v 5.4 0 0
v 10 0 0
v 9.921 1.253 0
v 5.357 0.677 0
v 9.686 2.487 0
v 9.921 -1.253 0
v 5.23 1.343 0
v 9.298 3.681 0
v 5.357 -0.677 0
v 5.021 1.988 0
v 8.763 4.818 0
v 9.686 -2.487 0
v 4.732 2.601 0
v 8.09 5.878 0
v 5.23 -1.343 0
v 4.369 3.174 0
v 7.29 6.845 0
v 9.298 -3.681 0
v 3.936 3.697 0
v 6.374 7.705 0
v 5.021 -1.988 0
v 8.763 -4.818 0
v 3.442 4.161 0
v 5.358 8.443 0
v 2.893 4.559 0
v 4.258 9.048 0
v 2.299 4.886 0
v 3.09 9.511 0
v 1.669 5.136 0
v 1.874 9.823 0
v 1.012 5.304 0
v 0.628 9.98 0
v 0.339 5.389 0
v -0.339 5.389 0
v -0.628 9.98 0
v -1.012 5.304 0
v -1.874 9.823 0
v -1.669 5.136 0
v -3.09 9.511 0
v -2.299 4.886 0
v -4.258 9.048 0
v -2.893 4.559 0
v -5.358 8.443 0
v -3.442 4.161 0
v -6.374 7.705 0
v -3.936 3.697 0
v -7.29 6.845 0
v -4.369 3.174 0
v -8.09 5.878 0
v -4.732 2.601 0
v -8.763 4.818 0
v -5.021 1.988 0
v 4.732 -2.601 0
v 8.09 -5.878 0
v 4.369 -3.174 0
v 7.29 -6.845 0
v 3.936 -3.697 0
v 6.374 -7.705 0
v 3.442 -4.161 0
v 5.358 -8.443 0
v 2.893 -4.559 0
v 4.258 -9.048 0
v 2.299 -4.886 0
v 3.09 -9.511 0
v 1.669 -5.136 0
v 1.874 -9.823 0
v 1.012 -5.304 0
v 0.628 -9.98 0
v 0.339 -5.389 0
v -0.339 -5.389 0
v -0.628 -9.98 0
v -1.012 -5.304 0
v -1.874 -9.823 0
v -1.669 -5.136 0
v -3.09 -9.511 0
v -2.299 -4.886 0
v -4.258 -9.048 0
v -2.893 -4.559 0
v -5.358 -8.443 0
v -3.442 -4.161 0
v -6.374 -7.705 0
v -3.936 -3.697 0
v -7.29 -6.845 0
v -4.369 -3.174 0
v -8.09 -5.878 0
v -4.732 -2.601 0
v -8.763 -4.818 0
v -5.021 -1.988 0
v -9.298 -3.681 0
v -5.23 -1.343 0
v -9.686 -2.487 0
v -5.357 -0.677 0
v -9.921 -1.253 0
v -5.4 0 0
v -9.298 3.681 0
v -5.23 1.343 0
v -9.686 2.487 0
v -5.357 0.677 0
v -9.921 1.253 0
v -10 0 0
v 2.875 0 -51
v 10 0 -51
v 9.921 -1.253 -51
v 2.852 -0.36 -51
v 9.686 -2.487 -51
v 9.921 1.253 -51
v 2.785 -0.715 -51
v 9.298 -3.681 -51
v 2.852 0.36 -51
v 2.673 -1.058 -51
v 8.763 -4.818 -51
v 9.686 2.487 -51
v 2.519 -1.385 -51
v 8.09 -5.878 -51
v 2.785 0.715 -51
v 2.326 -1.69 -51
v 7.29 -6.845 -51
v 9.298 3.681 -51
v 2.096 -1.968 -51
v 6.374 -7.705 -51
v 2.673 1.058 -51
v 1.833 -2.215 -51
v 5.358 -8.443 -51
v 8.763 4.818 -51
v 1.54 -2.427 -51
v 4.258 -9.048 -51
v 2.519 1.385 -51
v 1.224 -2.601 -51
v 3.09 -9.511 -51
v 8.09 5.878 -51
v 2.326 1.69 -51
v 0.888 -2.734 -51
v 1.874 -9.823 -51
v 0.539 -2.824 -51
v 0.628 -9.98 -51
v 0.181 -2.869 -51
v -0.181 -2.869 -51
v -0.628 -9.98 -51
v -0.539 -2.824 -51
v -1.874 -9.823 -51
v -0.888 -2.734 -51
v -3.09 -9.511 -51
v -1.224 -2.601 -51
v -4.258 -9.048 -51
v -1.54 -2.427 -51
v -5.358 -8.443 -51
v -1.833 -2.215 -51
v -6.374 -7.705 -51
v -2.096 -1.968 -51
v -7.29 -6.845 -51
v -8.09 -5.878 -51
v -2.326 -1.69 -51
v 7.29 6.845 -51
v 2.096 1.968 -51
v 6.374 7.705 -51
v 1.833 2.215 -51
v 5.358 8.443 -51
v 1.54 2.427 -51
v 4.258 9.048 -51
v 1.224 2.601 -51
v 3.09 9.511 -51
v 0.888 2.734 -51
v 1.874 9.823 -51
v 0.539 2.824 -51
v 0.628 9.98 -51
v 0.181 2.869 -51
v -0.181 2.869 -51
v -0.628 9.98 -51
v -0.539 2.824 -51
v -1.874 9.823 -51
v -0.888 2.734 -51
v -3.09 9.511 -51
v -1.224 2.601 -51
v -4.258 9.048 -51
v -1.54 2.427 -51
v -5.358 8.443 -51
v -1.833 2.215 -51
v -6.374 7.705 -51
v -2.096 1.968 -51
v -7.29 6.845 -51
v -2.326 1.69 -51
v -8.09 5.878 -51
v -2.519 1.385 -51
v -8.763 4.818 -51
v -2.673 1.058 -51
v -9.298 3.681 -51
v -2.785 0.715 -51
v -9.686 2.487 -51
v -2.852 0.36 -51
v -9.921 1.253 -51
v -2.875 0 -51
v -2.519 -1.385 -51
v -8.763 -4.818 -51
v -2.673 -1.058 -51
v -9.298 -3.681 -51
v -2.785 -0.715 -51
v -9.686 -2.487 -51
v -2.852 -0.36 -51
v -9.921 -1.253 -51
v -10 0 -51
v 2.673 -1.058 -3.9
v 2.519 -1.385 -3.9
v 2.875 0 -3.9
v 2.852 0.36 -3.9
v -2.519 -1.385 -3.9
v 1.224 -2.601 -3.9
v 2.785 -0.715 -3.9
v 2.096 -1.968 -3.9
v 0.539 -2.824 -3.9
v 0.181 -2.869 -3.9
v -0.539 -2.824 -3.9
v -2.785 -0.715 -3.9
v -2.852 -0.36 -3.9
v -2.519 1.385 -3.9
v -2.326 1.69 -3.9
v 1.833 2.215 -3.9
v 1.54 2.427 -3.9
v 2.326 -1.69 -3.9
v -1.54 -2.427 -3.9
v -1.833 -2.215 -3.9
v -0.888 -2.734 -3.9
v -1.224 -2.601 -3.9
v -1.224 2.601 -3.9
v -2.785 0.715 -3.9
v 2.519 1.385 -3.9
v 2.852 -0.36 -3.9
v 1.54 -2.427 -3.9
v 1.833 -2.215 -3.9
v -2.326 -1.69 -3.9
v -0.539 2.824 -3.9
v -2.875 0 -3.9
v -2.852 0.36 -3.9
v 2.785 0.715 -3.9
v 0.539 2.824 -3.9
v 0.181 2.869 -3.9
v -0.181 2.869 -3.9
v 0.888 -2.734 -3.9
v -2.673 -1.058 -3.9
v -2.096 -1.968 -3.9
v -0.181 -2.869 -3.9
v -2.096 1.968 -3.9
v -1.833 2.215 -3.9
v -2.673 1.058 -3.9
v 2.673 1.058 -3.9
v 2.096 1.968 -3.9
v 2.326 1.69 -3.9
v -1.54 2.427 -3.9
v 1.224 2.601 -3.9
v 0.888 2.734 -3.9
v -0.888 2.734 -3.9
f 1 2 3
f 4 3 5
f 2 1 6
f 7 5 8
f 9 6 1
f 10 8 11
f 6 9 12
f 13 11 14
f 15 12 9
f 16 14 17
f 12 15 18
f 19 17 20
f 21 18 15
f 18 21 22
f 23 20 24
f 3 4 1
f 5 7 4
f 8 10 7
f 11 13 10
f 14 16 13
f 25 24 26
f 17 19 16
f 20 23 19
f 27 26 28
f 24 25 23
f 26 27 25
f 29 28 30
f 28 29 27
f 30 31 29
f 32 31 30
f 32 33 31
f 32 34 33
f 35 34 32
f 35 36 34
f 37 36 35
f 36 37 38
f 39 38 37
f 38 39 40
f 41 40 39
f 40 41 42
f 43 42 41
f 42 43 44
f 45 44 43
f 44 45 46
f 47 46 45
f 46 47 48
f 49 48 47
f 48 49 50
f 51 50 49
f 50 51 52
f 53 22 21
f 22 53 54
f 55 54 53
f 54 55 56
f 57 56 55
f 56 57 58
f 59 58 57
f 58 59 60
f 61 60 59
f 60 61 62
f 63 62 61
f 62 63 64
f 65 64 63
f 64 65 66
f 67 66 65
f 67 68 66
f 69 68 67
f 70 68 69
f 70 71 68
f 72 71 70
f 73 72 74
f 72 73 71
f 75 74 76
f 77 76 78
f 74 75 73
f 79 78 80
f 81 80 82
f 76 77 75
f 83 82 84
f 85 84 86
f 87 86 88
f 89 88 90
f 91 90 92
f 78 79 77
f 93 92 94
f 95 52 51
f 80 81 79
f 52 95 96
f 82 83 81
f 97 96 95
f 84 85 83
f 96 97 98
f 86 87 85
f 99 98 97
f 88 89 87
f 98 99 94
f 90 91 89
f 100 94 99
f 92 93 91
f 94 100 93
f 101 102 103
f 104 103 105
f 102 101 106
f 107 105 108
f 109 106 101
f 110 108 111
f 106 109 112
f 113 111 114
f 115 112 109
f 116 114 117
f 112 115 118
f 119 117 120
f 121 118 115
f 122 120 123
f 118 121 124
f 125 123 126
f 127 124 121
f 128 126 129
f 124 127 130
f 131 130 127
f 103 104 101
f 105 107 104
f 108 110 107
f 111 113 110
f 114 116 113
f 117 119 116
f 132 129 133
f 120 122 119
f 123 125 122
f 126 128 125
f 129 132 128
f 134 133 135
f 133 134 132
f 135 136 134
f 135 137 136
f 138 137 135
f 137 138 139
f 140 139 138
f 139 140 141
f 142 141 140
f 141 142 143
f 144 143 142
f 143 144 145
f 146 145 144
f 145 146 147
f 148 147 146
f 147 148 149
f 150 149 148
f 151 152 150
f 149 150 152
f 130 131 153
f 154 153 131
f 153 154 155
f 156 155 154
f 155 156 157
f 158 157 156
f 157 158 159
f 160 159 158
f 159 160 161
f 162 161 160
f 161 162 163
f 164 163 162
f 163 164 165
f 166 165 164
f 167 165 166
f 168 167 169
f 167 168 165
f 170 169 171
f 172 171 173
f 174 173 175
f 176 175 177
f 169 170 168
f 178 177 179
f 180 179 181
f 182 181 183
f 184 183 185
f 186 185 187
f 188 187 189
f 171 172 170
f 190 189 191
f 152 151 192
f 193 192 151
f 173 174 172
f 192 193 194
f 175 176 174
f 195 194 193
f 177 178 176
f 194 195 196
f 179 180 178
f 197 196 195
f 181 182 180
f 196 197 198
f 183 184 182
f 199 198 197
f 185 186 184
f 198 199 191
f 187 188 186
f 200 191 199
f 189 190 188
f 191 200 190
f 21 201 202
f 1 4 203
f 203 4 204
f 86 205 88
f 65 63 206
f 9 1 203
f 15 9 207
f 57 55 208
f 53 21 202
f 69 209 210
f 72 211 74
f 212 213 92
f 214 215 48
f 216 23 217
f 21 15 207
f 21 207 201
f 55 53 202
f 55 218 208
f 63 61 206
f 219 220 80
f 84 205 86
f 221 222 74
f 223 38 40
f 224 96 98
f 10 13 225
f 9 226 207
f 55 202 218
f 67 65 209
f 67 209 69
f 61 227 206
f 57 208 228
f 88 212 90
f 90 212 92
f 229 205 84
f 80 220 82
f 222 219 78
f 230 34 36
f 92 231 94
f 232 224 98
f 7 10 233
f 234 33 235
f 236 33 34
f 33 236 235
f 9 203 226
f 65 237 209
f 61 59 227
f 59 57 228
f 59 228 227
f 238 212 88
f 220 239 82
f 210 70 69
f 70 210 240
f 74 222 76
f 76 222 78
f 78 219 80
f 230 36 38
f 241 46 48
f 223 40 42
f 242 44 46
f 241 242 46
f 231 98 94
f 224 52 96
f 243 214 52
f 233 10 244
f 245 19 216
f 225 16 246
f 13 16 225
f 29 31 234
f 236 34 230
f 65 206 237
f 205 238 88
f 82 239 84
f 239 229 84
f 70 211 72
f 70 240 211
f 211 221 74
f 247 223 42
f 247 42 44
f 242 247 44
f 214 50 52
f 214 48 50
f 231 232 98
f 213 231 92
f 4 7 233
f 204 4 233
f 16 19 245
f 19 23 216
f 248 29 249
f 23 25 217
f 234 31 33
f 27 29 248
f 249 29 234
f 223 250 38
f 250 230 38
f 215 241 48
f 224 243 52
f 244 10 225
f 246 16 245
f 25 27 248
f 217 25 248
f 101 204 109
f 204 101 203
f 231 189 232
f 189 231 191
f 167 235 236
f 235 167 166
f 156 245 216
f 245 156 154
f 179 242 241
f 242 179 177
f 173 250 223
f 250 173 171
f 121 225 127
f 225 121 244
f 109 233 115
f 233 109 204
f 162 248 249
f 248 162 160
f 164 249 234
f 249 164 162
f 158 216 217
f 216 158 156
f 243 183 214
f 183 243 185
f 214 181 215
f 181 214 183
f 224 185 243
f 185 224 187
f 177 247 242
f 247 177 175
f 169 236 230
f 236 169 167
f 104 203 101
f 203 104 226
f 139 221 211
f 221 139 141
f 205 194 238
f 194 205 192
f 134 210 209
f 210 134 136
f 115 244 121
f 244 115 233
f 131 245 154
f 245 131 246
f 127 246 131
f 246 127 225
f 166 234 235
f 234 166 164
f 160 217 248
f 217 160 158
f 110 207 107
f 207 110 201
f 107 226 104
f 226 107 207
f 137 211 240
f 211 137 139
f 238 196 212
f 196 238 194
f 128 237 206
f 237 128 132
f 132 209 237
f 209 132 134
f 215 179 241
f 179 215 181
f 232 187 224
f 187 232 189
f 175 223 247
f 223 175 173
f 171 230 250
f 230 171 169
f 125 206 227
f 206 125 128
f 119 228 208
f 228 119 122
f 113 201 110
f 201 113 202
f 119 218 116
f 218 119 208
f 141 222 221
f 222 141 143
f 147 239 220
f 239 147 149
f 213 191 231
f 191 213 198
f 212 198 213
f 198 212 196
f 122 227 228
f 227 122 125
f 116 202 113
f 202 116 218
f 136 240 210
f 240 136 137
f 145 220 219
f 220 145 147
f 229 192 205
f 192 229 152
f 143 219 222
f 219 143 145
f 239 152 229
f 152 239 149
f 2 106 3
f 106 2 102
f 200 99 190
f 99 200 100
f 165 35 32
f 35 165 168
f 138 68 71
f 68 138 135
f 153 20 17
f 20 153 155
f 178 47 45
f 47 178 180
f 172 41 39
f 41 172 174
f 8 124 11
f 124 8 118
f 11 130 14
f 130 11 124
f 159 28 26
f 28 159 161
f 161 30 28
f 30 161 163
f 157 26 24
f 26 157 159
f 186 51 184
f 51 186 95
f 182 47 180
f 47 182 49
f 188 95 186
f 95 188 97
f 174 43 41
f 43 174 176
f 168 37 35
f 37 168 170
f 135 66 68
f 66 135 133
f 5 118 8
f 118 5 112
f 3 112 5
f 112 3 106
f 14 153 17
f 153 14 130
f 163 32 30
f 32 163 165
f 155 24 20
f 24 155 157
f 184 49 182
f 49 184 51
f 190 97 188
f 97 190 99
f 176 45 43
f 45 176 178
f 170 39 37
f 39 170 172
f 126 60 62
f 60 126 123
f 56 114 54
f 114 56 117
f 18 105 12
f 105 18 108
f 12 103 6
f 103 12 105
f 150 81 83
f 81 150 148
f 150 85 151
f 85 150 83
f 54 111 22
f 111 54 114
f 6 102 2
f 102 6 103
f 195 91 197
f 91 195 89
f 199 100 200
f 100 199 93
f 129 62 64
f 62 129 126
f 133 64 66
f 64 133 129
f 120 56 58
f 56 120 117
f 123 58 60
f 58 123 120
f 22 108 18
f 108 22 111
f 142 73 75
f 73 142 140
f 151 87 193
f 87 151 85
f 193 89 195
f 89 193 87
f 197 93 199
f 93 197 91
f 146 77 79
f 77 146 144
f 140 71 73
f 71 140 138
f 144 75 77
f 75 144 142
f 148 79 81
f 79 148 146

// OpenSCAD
$fn = 50;


difference() {
	union() {
		translate(v = [0, 0, -51.0000000000]) {
			cylinder(h = 51, r = 10.0000000000);
		}
		cylinder(h = 0, r = 20.0000000000);
	}
	union() {
		translate(v = [0, 0, 0]) {
			rotate(a = [0, 0, 0]) {
				difference() {
					union() {
						#translate(v = [0, 0, -51.0000000000]) {
							cylinder(h = 51, r = 2.6000000000);
						}
						#translate(v = [0, 0, -3.9000000000]) {
							cylinder(h = 3.9000000000, r1 = 2.8750000000, r2 = 5.4000000000);
						}
						#translate(v = [0, 0, -51.0000000000]) {
							cylinder(h = 51, r = 2.8750000000);
						}
						#translate(v = [0, 0, -51.0000000000]) {
							cylinder(h = 51, r = 2.6000000000);
						}
					}
					union();
				}
			}
		}
	}
}
